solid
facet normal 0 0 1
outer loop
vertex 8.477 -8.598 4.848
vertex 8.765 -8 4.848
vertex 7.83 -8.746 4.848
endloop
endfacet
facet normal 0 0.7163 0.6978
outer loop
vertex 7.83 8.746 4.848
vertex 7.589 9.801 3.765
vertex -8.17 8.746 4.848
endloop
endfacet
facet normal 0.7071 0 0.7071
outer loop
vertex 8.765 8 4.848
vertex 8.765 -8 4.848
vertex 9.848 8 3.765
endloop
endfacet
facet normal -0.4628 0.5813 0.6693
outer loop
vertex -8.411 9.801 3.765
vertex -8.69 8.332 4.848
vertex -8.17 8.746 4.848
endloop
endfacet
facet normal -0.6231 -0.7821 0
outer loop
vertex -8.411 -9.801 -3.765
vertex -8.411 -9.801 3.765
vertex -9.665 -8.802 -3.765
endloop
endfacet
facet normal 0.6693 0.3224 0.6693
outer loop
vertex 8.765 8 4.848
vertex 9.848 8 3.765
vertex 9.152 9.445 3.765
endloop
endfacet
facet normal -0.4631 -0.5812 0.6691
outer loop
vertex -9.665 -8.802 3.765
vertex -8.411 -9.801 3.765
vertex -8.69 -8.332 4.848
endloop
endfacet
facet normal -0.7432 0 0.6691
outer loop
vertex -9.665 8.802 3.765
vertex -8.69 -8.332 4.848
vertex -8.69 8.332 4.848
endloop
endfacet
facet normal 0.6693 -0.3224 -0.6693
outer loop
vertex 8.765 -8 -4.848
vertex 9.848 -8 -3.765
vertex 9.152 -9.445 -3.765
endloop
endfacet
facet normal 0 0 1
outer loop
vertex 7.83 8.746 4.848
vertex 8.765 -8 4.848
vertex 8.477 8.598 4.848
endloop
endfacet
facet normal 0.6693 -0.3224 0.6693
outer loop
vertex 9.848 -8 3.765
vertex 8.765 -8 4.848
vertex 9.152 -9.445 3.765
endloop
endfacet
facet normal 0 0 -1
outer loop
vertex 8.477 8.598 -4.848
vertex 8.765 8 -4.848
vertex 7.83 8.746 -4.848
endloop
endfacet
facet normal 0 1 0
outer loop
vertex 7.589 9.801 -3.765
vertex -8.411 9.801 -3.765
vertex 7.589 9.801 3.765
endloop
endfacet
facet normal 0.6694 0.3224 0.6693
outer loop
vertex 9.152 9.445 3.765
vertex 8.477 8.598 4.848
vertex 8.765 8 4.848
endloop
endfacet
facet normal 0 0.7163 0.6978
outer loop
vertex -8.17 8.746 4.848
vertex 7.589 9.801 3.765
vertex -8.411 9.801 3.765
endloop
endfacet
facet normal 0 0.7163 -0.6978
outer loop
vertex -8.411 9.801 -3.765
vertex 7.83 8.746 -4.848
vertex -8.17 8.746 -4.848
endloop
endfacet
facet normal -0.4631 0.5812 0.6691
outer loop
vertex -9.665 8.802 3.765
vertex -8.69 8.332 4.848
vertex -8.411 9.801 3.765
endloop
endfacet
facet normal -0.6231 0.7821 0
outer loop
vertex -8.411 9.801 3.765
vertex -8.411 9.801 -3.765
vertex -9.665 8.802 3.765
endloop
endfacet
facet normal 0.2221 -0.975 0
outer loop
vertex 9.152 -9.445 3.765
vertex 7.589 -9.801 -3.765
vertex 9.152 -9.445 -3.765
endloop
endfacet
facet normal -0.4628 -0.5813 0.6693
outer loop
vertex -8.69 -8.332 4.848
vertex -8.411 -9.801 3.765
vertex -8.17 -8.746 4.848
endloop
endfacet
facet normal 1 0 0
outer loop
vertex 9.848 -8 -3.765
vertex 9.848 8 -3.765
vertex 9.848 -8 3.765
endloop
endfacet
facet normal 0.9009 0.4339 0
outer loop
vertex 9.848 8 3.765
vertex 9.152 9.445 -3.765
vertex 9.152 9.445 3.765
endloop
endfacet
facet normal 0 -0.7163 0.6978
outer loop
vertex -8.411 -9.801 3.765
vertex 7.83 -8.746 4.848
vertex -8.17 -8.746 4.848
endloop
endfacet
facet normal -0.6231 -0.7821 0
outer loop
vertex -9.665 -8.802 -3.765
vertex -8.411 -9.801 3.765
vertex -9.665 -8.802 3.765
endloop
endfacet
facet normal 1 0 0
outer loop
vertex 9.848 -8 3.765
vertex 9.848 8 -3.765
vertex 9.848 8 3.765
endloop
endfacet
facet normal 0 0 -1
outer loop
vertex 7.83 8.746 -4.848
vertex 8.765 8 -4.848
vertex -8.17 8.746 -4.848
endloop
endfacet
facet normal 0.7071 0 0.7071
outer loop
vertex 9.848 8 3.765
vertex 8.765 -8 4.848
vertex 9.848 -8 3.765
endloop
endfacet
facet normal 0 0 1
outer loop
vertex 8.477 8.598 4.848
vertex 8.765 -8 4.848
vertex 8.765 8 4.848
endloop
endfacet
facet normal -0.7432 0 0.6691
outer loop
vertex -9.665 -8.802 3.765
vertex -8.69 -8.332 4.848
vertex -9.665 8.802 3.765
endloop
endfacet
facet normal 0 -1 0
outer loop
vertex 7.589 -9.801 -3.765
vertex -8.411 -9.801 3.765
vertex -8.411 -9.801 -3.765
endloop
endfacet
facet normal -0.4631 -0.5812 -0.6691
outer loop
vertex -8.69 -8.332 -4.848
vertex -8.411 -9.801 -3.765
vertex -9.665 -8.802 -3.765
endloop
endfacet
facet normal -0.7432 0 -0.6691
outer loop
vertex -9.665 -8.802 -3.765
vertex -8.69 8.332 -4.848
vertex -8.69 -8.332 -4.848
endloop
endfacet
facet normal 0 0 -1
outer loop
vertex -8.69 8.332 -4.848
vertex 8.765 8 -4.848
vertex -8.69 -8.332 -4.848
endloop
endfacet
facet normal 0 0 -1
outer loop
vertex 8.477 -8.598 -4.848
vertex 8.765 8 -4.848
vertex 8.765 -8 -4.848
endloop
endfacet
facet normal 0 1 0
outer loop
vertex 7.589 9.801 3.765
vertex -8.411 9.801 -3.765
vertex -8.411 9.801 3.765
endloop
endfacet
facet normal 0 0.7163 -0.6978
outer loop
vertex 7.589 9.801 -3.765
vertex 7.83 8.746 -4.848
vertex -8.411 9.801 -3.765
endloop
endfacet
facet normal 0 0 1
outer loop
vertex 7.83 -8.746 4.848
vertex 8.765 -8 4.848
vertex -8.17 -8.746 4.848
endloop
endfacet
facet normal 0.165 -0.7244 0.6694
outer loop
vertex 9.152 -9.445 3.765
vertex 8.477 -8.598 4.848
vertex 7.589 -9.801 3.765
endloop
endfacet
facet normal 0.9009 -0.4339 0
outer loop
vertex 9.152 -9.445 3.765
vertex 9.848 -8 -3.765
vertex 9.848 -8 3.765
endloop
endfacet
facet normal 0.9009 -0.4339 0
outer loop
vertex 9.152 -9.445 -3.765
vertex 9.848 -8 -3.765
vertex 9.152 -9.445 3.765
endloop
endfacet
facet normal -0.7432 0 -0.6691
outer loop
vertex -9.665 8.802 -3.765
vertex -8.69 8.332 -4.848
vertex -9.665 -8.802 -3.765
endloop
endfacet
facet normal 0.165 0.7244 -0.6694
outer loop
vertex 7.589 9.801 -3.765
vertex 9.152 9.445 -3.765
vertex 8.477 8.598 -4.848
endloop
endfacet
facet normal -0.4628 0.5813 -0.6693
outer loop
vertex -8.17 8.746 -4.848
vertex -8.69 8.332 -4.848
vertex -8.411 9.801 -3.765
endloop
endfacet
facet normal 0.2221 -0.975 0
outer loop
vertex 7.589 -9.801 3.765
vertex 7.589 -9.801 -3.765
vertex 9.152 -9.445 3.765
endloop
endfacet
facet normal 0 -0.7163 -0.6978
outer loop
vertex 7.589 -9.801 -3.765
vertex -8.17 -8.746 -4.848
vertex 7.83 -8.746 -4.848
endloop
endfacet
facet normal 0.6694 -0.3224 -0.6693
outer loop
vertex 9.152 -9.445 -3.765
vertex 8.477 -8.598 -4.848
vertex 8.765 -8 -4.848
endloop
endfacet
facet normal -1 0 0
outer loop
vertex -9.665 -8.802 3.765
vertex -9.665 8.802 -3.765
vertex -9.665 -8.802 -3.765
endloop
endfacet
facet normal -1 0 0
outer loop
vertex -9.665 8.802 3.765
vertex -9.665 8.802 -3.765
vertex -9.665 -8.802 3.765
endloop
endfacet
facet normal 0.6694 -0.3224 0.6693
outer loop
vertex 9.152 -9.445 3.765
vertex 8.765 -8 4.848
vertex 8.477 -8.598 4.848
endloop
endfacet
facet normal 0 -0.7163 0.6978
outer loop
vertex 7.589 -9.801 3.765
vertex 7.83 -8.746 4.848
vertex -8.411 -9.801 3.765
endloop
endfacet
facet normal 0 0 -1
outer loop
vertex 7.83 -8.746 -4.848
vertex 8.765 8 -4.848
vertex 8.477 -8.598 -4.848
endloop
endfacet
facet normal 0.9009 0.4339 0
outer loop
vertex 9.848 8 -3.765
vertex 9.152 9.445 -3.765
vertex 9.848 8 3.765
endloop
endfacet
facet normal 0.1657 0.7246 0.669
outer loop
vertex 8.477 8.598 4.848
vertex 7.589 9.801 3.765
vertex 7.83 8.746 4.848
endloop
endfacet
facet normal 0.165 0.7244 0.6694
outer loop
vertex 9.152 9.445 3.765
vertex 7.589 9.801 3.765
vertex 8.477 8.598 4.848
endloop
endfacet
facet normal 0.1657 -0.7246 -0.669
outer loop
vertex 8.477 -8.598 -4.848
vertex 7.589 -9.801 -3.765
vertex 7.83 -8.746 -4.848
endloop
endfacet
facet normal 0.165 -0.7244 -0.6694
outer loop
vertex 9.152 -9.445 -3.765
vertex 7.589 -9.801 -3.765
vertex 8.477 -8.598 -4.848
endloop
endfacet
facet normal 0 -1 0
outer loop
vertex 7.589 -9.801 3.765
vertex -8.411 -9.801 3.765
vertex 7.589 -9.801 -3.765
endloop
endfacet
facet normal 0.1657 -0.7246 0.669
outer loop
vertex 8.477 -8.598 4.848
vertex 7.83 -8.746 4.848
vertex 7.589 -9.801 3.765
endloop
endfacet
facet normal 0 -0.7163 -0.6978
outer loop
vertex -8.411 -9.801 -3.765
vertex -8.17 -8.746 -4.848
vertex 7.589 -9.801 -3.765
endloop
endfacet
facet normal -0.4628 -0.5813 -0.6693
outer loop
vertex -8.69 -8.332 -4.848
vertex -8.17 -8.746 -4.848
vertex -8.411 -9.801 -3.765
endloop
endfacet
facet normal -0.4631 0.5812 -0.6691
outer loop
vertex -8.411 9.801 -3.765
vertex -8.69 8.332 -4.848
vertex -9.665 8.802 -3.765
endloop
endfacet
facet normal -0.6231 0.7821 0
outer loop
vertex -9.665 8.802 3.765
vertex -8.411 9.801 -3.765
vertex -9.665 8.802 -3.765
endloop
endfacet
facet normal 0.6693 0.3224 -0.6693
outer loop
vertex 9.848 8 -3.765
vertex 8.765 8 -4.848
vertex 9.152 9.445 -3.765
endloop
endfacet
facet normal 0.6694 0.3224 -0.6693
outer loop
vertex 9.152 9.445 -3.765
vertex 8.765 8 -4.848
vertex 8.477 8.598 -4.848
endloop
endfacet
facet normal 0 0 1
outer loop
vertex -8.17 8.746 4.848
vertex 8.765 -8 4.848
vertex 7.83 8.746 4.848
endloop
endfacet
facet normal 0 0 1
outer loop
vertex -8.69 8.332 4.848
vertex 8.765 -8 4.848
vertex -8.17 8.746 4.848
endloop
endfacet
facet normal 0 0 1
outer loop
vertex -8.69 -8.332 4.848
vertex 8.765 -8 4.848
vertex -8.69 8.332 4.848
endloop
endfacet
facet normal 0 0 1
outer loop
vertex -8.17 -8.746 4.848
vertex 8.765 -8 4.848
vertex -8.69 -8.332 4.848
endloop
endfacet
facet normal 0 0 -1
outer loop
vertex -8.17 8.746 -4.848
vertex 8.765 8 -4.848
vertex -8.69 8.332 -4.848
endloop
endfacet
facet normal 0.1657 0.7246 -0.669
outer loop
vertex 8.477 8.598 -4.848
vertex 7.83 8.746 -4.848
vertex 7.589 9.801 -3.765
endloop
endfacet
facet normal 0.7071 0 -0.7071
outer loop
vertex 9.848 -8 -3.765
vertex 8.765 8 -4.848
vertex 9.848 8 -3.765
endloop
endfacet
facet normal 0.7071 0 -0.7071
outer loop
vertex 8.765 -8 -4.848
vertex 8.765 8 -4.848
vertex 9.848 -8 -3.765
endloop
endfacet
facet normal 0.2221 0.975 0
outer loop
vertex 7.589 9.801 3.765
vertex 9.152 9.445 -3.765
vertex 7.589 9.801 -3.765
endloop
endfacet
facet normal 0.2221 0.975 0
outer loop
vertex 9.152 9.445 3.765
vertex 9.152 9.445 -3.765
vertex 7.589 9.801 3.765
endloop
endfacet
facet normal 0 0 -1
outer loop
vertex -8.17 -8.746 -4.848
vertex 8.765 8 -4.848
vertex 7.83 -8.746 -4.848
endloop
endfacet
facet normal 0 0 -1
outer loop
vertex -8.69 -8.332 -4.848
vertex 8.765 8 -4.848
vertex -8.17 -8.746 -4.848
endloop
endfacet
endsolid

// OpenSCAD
module rounded_box(width, depth, height, radius) {
    minkowski() {
        cube([width - 2*radius, depth - 2*radius, height - 2*radius], true);
        sphere(r=radius);
    }
}

rounded_box(20, 20, 10, 2);
